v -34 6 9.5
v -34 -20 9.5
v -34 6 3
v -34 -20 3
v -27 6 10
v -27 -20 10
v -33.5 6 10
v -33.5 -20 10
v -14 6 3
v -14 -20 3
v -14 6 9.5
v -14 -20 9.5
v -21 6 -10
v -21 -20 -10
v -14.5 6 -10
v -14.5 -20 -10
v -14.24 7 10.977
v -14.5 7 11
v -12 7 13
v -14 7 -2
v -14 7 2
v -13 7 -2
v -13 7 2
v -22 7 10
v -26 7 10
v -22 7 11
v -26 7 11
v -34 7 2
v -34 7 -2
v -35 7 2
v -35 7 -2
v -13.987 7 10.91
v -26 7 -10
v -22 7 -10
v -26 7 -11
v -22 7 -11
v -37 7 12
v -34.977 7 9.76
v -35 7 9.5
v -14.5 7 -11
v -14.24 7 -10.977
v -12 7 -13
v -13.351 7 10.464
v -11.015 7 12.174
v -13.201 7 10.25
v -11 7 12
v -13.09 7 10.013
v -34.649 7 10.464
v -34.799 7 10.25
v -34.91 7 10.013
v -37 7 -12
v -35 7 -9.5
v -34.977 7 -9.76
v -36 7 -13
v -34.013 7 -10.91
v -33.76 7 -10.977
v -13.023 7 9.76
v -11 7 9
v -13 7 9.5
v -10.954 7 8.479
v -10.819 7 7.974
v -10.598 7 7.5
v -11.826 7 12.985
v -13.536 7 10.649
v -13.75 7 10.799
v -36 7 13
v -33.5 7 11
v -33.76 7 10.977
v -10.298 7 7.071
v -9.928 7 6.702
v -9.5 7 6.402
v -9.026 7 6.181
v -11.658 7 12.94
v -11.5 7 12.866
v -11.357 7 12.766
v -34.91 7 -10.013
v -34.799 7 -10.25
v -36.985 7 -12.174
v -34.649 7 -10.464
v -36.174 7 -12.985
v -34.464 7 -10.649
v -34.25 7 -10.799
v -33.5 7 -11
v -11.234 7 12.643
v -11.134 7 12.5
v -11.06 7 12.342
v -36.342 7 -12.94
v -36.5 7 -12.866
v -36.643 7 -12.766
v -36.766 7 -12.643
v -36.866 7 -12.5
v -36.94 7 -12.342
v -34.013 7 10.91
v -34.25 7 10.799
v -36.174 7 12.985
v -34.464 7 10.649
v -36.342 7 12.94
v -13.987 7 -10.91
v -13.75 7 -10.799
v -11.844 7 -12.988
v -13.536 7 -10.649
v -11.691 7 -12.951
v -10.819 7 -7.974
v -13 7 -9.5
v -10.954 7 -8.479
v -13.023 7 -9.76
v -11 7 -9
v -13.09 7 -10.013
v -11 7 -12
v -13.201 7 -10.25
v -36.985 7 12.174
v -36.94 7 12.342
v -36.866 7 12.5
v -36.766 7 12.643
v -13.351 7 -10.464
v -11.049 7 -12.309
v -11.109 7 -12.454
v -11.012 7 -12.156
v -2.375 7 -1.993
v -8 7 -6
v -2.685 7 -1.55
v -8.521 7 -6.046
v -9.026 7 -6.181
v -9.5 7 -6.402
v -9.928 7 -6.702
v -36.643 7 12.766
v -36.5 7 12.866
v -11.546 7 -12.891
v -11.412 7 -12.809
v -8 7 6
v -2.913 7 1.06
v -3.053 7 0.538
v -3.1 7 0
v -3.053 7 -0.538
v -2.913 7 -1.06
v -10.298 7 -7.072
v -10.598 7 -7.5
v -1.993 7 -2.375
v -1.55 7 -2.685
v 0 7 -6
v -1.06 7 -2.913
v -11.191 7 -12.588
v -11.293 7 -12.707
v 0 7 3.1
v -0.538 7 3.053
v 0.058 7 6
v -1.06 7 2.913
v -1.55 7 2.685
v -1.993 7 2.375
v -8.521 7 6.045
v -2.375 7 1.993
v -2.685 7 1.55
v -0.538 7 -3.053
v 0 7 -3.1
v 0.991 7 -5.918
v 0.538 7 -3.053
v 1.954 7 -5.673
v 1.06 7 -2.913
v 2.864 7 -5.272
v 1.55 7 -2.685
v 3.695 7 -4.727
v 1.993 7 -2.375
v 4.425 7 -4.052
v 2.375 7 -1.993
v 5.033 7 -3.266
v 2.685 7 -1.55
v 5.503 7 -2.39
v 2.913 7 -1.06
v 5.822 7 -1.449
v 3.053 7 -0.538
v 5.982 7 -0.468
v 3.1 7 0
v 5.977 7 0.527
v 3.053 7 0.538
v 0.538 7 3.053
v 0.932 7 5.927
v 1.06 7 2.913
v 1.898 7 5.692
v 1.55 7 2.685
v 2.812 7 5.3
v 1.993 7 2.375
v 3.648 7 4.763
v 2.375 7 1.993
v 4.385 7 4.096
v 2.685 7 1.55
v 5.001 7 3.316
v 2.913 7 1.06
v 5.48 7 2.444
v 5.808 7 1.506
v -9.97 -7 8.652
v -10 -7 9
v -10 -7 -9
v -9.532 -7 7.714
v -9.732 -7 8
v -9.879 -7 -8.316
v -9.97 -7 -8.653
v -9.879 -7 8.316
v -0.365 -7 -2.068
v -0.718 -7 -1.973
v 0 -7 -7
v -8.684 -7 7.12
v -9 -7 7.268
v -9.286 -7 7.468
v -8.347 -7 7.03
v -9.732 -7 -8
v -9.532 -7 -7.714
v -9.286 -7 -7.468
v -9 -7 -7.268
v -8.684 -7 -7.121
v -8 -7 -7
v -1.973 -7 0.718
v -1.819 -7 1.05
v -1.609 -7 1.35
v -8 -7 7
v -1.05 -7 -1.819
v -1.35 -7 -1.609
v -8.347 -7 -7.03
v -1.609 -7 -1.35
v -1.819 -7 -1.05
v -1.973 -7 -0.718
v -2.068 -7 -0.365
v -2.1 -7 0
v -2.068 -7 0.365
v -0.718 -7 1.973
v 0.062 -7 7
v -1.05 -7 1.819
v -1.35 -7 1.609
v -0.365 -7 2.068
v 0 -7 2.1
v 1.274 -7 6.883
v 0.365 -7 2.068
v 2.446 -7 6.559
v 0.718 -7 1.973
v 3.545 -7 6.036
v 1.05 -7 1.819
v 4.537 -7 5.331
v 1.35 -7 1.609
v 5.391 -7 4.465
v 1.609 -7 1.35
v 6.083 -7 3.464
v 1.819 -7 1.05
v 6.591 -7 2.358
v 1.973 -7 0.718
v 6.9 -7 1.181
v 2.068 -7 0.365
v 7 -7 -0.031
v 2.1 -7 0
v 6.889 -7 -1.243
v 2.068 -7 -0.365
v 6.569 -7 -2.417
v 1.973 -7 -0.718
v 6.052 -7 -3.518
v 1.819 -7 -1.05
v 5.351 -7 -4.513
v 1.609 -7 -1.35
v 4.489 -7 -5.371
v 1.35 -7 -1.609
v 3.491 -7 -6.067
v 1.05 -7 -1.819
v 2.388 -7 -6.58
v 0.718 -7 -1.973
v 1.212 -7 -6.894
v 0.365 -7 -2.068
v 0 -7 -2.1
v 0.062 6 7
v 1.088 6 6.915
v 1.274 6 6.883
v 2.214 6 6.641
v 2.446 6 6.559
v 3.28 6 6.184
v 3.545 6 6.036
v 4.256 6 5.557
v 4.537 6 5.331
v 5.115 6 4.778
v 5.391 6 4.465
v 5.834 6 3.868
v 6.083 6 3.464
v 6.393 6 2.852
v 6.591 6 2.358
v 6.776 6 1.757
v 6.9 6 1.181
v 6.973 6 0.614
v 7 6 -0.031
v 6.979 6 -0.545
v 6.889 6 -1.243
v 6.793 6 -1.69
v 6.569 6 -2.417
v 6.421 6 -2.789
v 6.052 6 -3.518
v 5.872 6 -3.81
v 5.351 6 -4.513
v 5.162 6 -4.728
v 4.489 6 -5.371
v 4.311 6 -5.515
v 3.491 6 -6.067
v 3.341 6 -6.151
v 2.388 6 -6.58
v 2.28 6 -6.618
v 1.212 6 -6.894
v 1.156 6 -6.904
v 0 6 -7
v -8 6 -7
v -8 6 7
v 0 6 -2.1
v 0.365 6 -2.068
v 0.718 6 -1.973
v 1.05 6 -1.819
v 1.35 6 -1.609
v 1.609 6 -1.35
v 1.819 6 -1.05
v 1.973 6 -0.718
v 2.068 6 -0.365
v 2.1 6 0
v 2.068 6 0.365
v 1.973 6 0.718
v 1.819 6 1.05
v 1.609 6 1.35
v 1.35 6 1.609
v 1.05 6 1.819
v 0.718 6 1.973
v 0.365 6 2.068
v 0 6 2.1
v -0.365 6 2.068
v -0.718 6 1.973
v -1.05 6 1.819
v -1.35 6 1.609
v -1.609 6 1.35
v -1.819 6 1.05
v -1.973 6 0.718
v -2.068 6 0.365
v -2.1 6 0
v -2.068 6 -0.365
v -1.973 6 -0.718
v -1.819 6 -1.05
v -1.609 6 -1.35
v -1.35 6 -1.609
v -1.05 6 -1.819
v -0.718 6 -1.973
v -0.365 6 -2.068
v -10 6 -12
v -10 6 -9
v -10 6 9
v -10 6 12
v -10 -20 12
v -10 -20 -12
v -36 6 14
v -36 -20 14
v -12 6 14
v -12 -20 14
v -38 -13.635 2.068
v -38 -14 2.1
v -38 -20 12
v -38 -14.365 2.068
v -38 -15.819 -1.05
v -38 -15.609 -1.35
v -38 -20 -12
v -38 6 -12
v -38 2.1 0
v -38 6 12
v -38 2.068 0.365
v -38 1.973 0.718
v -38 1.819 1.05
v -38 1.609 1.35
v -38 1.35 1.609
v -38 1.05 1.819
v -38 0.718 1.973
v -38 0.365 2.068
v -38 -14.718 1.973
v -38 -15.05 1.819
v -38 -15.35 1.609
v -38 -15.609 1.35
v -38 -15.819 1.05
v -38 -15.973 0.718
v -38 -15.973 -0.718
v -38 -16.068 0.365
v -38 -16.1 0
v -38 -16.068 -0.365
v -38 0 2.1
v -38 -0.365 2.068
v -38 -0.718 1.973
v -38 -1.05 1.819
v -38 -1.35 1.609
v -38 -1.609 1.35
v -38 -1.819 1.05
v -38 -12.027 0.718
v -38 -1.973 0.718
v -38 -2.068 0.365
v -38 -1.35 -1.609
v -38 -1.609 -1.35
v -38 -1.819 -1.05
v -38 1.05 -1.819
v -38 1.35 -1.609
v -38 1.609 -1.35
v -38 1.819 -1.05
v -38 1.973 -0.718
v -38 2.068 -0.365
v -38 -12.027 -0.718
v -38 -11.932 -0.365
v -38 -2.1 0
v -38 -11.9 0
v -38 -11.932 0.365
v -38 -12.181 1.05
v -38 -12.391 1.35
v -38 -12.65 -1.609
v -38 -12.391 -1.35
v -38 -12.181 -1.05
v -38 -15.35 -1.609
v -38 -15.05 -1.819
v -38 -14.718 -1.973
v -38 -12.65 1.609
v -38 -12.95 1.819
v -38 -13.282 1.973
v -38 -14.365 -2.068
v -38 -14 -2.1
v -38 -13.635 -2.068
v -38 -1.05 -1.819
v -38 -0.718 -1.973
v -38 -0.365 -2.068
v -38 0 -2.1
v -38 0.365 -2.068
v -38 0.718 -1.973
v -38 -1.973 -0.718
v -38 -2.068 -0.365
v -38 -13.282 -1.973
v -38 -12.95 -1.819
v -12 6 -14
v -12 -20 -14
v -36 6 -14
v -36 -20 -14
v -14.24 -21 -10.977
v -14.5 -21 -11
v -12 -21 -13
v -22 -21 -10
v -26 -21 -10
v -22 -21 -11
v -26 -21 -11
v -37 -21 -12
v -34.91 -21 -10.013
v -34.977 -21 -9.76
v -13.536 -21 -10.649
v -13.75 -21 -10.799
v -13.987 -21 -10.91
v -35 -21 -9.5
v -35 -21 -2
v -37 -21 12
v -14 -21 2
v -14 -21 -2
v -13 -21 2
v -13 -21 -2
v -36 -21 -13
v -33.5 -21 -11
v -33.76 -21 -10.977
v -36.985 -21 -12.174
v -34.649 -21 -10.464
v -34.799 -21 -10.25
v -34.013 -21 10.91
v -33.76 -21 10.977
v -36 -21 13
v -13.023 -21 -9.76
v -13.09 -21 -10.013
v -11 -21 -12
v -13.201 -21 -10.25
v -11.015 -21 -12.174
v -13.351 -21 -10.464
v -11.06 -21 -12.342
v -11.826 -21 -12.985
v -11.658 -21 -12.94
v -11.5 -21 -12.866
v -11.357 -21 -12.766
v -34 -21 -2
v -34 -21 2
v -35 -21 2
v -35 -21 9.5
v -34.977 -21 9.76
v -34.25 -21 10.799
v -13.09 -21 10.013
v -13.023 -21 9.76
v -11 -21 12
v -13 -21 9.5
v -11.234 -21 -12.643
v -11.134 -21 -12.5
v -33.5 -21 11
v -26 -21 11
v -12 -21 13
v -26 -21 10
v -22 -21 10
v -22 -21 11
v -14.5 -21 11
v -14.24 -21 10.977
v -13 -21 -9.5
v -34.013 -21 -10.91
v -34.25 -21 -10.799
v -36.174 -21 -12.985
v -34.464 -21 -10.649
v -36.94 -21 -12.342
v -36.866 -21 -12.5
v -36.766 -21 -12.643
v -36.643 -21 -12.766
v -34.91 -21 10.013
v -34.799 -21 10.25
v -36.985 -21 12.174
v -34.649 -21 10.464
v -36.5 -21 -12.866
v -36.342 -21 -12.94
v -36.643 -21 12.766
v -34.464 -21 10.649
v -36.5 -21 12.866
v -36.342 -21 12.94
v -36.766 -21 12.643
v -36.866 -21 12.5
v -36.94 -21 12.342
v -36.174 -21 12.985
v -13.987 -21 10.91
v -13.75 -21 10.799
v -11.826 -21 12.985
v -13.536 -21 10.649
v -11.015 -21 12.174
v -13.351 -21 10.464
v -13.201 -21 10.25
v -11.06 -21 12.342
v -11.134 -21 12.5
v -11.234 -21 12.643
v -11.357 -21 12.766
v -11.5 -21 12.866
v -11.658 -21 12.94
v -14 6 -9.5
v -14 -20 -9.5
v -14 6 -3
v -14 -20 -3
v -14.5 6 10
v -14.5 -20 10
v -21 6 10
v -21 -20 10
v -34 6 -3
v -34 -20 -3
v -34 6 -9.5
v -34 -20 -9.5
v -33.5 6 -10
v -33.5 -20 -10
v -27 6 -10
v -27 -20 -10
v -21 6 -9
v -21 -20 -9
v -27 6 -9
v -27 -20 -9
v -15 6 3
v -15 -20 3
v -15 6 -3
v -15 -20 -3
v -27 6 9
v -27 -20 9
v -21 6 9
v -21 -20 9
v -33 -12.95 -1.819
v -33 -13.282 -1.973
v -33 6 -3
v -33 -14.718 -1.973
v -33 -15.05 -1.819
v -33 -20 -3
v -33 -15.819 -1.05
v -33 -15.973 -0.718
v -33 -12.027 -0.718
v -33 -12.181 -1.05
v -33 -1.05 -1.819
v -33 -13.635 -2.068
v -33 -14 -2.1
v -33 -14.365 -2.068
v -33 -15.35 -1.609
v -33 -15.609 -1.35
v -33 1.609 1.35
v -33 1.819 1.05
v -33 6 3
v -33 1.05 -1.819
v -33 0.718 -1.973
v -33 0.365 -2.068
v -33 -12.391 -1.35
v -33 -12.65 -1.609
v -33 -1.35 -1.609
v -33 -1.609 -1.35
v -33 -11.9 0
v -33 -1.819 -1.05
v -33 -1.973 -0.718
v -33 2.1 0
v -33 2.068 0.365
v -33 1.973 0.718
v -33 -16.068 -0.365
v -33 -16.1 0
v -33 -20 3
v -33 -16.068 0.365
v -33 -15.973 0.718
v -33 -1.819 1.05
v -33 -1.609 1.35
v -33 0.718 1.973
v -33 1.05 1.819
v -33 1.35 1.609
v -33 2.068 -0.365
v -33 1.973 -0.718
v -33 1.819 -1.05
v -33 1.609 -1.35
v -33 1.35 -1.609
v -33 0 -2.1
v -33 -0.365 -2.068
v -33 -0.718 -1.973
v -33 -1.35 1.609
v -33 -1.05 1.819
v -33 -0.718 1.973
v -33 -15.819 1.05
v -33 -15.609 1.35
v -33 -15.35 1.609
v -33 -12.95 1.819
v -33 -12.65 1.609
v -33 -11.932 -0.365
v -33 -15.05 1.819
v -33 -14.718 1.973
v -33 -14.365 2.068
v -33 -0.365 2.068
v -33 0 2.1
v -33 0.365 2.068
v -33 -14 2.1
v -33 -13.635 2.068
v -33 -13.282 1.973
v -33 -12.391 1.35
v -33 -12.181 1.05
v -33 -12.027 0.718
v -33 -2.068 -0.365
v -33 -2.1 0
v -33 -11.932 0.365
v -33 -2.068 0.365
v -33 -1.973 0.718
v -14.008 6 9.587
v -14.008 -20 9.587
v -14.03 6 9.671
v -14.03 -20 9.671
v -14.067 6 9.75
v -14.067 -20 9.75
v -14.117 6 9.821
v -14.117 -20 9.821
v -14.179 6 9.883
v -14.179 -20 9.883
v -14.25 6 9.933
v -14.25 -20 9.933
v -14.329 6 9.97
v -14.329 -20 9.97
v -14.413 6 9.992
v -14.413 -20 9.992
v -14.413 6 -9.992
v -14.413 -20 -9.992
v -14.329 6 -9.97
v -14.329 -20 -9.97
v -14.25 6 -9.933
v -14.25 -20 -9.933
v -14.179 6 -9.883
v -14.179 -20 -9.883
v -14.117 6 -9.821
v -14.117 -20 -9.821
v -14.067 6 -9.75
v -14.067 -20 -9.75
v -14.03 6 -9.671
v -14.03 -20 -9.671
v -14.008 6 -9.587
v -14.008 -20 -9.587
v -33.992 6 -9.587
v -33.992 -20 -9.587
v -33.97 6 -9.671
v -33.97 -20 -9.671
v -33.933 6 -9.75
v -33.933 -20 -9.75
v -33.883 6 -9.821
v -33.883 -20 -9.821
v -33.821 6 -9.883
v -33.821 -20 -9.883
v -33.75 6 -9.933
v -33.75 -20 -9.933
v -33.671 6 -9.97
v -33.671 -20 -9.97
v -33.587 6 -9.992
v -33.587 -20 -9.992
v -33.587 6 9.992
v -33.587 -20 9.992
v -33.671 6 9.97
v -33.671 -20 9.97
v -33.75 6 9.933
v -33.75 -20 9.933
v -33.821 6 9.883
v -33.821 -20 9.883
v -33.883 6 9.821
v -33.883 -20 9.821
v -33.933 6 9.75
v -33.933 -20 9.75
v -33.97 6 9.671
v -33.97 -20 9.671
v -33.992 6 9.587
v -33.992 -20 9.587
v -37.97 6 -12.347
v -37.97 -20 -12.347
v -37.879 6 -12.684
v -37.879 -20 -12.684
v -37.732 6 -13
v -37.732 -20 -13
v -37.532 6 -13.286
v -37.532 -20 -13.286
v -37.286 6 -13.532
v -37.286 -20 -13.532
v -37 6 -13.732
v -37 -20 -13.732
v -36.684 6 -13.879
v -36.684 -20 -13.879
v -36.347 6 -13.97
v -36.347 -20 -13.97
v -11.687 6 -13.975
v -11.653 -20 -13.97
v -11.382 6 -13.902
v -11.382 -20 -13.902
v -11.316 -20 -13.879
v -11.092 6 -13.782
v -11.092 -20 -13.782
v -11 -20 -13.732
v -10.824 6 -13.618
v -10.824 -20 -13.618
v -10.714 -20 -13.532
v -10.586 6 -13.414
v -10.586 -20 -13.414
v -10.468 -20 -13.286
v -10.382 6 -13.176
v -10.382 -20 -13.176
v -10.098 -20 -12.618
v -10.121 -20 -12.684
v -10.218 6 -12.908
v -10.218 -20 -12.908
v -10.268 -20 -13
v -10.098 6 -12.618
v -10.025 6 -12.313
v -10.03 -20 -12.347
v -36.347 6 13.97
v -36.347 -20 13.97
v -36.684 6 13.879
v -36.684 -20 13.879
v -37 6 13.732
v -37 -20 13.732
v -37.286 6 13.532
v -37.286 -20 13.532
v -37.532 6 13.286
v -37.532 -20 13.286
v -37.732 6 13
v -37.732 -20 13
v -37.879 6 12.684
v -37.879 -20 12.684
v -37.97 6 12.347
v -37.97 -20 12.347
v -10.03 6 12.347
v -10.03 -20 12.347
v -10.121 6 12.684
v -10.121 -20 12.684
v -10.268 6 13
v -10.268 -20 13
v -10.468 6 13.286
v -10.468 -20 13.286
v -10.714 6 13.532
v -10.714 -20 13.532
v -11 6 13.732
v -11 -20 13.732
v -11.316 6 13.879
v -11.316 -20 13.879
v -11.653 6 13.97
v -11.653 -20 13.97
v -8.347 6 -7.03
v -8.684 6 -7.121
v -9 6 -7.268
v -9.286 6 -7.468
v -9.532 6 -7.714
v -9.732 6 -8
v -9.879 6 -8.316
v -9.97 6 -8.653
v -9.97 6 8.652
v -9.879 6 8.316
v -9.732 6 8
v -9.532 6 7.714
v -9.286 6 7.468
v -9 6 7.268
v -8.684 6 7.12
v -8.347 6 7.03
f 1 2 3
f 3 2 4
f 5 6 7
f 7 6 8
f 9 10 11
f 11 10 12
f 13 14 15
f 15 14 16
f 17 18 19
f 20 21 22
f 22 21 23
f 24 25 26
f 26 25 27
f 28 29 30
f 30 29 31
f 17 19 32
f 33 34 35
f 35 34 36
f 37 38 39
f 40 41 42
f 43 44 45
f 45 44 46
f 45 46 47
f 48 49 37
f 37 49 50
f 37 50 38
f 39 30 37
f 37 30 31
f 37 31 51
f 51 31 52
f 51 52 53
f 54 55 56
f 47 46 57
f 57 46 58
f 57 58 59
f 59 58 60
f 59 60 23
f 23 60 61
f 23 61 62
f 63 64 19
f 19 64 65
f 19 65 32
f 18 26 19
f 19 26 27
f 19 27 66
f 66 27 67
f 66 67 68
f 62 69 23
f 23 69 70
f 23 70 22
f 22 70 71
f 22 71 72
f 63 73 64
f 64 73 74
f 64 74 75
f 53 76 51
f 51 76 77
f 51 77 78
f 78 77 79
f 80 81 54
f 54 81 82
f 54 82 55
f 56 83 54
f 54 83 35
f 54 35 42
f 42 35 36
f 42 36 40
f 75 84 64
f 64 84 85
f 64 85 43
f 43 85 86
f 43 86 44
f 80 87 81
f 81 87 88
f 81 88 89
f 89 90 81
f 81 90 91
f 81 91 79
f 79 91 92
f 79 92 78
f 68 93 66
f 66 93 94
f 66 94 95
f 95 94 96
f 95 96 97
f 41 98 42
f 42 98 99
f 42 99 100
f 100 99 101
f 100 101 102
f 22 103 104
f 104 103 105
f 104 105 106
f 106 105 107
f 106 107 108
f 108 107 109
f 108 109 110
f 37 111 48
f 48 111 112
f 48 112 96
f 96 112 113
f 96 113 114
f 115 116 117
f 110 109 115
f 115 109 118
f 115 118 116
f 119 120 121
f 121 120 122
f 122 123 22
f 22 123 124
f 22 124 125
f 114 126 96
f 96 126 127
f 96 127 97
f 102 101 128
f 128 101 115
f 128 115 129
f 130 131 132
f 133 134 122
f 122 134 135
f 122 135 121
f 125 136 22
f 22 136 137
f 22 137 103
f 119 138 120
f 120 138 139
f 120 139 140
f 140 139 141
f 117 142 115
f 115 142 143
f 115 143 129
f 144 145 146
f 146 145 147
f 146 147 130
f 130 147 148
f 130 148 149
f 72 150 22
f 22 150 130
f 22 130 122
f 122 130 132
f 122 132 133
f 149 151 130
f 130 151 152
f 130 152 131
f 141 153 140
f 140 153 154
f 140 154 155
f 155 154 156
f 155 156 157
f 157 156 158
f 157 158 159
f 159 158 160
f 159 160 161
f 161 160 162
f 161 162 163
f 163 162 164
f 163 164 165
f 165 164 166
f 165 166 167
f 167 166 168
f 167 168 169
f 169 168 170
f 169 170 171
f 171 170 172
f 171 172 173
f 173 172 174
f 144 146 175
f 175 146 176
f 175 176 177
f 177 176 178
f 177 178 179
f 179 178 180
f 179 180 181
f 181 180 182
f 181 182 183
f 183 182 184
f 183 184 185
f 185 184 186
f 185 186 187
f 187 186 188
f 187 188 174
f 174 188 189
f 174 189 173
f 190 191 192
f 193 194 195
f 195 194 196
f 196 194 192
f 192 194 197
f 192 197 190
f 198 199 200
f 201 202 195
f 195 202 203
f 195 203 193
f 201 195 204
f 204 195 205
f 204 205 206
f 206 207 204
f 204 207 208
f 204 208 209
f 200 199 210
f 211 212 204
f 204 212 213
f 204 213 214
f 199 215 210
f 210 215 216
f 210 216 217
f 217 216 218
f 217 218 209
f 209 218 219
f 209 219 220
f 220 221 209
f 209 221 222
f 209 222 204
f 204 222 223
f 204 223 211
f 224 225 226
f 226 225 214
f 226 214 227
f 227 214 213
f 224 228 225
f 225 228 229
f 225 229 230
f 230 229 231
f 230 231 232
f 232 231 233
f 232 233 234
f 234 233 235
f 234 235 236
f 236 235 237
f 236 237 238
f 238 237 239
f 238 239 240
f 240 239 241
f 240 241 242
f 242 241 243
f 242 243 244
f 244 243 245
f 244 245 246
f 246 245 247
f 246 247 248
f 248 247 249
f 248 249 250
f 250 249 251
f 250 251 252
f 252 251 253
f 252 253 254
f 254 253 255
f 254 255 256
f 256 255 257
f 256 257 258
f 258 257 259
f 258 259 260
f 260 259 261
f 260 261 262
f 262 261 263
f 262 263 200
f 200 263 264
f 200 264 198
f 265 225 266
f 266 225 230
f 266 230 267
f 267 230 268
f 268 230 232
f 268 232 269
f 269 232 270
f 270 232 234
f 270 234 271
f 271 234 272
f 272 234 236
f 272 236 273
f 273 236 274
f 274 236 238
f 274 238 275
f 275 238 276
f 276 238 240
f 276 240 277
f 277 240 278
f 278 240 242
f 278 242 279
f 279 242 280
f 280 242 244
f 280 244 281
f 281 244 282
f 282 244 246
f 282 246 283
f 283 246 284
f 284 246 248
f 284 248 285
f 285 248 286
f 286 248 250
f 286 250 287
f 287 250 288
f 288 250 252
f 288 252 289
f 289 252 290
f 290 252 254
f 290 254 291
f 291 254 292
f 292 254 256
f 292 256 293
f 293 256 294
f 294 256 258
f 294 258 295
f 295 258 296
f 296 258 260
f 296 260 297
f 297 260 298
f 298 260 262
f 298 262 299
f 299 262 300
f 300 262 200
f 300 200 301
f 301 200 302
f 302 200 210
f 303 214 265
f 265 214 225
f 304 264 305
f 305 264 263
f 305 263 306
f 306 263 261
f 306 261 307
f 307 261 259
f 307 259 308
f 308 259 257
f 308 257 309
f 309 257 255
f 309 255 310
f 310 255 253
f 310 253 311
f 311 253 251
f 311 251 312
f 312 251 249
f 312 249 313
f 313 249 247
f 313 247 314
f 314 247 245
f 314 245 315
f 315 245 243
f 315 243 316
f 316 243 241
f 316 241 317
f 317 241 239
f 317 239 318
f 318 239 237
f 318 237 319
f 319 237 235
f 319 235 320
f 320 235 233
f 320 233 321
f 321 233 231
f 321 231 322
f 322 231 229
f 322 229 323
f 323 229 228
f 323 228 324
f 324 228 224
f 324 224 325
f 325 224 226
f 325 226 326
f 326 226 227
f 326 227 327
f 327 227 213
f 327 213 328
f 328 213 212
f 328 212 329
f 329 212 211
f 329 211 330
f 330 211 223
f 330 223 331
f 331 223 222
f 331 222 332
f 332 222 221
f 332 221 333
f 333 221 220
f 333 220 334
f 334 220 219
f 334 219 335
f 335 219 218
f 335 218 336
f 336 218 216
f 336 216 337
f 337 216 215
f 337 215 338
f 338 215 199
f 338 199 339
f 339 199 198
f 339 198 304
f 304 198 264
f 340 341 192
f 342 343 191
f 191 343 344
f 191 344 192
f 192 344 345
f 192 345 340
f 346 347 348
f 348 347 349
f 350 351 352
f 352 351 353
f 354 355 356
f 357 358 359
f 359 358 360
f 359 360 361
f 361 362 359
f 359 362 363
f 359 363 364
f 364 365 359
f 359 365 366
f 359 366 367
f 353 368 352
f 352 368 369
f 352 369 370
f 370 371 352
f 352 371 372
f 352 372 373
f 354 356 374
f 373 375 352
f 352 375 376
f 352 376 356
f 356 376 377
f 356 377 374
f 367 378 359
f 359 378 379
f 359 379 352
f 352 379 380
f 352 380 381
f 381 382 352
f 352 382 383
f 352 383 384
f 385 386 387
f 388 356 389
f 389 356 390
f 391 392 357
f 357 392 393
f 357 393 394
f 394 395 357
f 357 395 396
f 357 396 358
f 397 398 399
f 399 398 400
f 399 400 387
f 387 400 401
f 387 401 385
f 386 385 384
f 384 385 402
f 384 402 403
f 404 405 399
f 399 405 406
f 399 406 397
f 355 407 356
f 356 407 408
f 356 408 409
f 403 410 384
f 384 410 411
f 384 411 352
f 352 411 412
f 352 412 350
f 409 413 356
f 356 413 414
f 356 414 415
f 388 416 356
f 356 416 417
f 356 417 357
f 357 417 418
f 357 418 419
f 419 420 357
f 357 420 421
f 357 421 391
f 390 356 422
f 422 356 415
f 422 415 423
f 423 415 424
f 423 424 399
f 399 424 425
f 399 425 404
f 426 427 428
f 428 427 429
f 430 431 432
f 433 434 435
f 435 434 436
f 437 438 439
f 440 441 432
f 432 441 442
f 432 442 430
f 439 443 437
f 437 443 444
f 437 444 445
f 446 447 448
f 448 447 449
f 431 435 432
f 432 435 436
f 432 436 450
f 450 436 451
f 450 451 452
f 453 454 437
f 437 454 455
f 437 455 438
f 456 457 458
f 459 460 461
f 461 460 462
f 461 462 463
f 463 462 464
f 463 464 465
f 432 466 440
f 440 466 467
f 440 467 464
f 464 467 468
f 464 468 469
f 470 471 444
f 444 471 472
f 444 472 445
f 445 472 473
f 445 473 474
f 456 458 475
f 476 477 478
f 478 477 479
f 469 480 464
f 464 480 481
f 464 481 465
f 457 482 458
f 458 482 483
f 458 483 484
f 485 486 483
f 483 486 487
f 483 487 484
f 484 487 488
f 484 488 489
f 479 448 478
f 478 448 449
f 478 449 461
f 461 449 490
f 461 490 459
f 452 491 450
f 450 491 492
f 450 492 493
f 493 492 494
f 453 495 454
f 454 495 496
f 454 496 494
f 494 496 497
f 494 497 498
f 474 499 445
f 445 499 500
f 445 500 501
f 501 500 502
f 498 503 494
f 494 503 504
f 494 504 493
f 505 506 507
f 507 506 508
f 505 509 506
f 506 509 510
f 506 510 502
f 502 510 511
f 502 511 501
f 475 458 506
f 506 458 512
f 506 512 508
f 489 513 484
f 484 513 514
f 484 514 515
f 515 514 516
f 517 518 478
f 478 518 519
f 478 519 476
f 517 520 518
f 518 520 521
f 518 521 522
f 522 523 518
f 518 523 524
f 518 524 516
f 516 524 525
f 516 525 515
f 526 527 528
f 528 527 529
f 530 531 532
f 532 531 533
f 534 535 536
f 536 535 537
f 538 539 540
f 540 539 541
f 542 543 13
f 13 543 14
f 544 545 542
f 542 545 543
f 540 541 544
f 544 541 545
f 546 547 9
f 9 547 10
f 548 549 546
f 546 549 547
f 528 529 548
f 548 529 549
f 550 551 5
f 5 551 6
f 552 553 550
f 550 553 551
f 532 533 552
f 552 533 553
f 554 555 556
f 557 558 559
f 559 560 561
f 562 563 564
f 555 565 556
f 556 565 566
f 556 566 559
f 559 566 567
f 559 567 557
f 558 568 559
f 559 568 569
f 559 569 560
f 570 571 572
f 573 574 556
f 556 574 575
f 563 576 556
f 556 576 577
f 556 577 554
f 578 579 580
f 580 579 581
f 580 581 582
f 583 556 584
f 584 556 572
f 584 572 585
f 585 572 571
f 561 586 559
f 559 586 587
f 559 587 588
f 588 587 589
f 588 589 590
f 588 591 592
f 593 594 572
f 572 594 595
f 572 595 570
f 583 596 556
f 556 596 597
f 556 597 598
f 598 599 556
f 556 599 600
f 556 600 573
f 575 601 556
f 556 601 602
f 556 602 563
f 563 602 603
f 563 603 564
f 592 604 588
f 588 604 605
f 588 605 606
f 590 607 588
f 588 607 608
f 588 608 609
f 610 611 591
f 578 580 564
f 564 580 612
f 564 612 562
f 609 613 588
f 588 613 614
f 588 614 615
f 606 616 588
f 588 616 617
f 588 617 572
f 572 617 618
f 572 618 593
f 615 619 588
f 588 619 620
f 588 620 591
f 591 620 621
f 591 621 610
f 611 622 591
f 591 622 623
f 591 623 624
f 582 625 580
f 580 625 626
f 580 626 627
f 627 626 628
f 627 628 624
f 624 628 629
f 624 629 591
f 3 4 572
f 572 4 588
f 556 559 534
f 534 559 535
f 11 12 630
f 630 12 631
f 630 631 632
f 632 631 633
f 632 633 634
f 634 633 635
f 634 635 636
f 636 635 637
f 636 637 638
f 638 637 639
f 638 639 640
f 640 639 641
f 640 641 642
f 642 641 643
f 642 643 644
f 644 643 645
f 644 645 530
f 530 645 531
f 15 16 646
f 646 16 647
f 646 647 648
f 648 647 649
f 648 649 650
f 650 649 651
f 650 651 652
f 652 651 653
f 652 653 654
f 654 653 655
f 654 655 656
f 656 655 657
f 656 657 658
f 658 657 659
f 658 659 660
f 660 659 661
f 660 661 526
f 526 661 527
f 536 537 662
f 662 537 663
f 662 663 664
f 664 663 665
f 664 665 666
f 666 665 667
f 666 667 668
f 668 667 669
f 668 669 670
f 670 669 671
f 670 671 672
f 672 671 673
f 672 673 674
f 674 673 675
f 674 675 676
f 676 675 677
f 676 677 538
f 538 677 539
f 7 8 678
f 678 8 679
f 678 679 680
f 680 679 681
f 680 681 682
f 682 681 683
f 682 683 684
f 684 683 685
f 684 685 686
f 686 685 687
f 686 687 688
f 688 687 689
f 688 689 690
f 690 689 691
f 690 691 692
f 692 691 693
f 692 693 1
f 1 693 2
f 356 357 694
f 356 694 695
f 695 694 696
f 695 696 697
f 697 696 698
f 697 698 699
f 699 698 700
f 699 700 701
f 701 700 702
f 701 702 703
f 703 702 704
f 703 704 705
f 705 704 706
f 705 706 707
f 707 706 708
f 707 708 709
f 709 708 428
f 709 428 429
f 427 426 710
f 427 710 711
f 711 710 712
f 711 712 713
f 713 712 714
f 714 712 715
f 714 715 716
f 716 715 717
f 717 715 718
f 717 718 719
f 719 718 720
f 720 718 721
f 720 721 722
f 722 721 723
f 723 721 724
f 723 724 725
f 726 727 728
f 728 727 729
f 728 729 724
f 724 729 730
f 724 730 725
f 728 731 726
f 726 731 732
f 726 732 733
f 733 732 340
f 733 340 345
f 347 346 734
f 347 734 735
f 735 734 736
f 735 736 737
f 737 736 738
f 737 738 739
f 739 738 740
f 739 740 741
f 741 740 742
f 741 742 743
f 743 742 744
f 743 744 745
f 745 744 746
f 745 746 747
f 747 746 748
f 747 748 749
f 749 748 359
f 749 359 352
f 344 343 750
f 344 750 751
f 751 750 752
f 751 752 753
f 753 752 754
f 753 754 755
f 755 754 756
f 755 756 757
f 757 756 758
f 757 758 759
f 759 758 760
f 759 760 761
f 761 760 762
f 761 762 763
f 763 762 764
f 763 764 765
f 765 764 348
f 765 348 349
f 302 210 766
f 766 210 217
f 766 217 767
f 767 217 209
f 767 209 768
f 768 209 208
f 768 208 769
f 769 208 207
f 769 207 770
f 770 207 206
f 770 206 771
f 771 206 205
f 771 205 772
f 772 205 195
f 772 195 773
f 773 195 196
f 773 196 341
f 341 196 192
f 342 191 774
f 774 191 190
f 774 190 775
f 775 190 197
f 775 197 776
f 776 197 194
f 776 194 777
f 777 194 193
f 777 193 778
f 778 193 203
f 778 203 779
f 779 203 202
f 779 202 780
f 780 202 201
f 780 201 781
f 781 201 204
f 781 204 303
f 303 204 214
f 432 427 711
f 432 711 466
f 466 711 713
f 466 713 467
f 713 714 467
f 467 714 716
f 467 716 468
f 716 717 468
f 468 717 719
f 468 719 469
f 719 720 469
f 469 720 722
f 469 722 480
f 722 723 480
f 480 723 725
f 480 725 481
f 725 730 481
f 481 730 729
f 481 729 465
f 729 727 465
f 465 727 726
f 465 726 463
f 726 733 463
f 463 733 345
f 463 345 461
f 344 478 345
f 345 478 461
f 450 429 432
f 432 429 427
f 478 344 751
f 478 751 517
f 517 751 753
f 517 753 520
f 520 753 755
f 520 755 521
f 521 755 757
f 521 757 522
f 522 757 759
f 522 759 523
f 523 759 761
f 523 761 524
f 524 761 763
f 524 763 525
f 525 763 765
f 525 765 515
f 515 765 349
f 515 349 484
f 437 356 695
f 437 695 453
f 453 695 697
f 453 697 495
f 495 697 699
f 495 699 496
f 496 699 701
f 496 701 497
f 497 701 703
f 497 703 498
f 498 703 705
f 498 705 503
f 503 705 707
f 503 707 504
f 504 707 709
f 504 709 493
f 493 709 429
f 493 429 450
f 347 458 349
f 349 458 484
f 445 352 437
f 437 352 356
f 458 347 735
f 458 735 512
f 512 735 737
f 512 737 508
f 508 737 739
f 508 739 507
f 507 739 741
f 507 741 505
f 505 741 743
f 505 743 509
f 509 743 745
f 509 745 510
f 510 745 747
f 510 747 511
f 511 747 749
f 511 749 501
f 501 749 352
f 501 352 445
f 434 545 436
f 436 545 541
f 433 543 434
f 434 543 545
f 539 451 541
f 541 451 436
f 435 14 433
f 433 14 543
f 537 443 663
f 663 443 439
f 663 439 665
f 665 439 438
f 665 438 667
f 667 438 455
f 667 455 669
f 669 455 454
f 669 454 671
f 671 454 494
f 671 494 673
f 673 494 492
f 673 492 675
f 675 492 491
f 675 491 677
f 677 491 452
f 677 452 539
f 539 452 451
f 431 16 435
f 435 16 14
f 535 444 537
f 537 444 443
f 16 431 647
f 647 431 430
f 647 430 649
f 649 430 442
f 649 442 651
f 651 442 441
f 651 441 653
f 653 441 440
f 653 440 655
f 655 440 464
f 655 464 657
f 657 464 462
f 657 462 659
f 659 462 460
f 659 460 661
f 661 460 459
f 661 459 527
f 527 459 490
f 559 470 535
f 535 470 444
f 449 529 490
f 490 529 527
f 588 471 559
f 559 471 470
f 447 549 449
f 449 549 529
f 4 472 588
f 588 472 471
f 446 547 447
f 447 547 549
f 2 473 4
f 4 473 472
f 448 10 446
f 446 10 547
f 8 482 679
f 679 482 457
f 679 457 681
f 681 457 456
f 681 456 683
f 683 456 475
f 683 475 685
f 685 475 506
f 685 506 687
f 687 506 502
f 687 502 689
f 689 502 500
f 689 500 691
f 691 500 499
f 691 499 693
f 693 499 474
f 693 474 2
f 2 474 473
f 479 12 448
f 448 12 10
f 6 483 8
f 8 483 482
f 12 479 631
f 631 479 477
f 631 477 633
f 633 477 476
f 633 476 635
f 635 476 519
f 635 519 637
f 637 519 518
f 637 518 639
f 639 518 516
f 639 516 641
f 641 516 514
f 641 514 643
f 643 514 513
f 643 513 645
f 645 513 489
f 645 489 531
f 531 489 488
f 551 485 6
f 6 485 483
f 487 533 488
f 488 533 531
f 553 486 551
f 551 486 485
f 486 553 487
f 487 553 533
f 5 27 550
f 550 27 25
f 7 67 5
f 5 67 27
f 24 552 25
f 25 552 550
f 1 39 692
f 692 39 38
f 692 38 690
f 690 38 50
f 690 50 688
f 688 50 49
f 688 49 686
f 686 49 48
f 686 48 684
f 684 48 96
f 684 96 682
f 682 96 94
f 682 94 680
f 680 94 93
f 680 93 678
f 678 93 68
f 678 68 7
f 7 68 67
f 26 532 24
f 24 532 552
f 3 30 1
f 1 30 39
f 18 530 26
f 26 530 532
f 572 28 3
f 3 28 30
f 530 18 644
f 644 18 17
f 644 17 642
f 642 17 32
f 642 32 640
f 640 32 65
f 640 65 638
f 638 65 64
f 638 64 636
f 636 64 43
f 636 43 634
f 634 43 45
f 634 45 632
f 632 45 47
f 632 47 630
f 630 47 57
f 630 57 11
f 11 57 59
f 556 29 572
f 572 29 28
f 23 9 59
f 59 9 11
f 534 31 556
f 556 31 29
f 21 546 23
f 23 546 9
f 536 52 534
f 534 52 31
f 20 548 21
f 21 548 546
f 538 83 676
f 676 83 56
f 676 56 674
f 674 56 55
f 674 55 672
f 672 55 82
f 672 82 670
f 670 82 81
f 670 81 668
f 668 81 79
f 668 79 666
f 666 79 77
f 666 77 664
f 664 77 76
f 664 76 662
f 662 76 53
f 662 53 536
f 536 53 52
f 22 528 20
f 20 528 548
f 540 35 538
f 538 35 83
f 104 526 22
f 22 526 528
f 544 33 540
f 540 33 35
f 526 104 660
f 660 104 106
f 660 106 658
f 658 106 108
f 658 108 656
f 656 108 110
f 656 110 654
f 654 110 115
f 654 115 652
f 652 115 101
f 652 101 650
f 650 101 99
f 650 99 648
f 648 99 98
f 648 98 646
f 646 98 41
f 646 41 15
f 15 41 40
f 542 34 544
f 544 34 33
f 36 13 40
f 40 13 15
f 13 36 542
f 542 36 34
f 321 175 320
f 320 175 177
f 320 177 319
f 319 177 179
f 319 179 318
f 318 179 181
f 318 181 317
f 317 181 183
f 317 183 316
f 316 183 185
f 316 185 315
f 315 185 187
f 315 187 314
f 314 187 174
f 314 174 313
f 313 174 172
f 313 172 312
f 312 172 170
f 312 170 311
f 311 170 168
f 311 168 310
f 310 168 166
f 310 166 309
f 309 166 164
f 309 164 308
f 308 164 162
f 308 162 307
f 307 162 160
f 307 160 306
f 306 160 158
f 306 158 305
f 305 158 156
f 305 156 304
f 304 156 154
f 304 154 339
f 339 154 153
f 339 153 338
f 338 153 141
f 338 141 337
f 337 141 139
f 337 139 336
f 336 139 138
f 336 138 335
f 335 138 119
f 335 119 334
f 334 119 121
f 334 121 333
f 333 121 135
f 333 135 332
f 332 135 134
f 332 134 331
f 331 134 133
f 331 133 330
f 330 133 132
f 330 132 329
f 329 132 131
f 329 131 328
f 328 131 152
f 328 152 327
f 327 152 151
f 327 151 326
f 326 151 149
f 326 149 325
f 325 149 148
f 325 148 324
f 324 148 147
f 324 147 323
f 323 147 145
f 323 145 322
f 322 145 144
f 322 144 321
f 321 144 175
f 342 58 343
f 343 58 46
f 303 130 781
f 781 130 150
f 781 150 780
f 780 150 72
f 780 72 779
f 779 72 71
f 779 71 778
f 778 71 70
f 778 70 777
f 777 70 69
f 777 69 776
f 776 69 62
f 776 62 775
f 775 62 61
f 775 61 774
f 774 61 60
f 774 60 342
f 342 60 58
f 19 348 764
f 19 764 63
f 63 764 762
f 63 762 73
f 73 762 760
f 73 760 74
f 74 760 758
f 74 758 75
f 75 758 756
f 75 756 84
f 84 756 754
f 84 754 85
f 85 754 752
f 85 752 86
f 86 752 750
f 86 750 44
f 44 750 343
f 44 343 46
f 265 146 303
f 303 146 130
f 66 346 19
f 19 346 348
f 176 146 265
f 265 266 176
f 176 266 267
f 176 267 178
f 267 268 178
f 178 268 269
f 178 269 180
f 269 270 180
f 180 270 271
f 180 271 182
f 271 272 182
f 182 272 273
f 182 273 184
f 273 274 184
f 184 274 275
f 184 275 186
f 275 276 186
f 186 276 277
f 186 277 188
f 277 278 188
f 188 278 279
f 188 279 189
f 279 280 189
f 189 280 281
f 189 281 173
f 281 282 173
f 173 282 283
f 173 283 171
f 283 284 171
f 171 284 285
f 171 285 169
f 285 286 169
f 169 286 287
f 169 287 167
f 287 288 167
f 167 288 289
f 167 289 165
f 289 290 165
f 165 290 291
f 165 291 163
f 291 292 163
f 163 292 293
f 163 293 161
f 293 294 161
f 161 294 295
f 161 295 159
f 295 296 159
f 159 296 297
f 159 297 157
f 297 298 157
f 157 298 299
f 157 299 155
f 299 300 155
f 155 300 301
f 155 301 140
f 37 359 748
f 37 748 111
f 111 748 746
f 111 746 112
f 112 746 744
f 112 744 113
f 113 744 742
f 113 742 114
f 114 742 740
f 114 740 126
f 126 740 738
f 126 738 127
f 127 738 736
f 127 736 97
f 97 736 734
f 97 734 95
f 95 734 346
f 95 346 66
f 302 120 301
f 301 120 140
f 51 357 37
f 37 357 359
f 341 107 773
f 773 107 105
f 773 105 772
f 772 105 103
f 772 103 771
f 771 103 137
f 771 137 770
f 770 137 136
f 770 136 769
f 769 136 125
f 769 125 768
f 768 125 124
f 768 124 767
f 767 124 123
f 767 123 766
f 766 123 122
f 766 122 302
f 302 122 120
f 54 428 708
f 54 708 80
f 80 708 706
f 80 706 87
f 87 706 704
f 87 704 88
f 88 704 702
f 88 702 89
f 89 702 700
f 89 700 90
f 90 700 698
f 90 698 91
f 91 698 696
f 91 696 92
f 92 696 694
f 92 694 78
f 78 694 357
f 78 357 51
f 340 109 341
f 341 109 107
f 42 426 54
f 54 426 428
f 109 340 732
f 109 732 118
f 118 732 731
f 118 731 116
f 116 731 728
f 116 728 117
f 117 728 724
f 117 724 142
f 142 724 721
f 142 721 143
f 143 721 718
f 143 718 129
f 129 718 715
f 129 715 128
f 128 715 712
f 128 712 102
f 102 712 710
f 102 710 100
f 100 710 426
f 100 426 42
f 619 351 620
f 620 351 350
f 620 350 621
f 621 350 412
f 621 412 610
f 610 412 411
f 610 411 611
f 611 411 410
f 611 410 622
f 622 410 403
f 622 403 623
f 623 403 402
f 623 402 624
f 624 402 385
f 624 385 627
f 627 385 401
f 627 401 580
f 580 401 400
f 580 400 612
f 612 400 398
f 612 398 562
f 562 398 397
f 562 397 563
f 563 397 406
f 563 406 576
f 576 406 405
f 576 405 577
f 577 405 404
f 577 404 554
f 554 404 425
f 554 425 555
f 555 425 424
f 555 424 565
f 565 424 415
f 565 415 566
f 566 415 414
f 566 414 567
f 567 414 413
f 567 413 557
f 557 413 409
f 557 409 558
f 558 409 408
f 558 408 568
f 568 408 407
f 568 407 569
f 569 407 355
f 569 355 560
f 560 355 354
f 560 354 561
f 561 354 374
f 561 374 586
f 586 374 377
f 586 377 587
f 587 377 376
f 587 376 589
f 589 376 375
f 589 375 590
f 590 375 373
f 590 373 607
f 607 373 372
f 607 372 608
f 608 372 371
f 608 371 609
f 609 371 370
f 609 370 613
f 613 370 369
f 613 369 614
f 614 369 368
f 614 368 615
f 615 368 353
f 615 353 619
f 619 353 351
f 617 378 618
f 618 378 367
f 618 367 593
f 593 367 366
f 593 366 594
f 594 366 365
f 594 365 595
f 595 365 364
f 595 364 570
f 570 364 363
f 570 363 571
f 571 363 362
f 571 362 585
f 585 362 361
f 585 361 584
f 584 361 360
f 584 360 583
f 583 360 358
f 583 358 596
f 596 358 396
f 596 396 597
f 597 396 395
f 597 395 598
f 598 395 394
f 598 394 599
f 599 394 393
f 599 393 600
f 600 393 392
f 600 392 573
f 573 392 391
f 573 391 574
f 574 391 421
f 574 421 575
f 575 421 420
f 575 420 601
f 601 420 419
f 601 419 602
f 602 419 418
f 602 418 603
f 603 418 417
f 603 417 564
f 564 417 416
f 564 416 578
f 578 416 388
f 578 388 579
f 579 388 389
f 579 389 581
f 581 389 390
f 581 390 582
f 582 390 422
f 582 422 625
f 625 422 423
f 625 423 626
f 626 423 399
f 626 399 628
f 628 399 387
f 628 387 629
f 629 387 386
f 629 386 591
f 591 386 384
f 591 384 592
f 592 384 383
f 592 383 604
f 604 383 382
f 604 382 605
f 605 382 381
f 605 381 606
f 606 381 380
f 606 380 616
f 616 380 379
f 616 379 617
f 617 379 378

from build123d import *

# Parameters (mm, degrees)
CROQUIS1_R              = 2.1
SALIENTE_EXTRUIR1_DEPTH = 7
CROQUIS2_W              = 28
CROQUIS2_H              = 28
CROQUIS2_W_2            = 20
CROQUIS2_H_2            = 20
SALIENTE_EXTRUIR2_DEPTH = 28
CROQUIS3_W              = 6
CROQUIS3_H              = 1
CROQUIS3_W_2            = 1
CROQUIS3_H_2            = 6
SALIENTE_EXTRUIR3_DEPTH = 28
REDONDEO1_R             = 0.5
REDONDEO2_R             = 2
REDONDEO3_R             = 2
CHAFL_N1_SIZE           = 1
CHAFL_N3_SIZE           = 1
CORTAR_EXTRUIR2_REACH   = 53.595
CROQUIS4_R              = 2.1


with BuildPart() as part:
    # Croquis1 → Saliente-Extruir1 (new, symmetric)
    with BuildSketch(Plane(origin=(0, 0, 0), x_dir=(1, 0, 0), z_dir=(0, 1, 0))):
        with BuildLine():
            Line((0, 7), (-10, 7))
            Line((-10, 7), (-10, -6.999720999))
            Line((-10, -6.999720999), (0.062497509, -6.999720999))
            ThreePointArc((0.062497509, -6.999720999), (6.999930249, 0.031249066), (0, 7))
        make_face()
        with Locations(Location((0, 0, 0), (0, 0, 270))):
            Circle(CROQUIS1_R, mode=Mode.SUBTRACT)
    extrude(amount=SALIENTE_EXTRUIR1_DEPTH, both=True)

    # Croquis2 → Saliente-Extruir2 (add)
    with BuildSketch(Plane(origin=(0, 7, 0), x_dir=(1, 0, 0), z_dir=(0, 1, 0))):
        with Locations((-24, 0)):
            Rectangle(CROQUIS2_W, CROQUIS2_H)
        with Locations((-24, 0)):
            Rectangle(CROQUIS2_W_2, CROQUIS2_H_2, mode=Mode.SUBTRACT)
    extrude(amount=-SALIENTE_EXTRUIR2_DEPTH)

    # Croquis3 → Saliente-Extruir3 (add, through all)
    with BuildSketch(Plane(origin=(0, 7, 0), x_dir=(1, 0, 0), z_dir=(0, 1, 0))):
        with Locations((-24, 9.5)):
            Rectangle(CROQUIS3_W, CROQUIS3_H)
        with Locations((-14.5, 0)):
            Rectangle(CROQUIS3_W_2, CROQUIS3_H_2)
        with Locations((-24, -9.5)):
            Rectangle(CROQUIS3_W, CROQUIS3_H)
        with Locations((-33.5, 0)):
            Rectangle(CROQUIS3_W_2, CROQUIS3_H_2)
    extrude(amount=-SALIENTE_EXTRUIR3_DEPTH)

    # Redondeo1
    redondeo1_edges = [part.edges().sort_by_distance(p)[0] for p in [
        (-14, -7, 10),
        (-34, -7, 10),
        (-34, -7, -10),
        (-14, -7, -10),
    ]]
    fillet(redondeo1_edges, radius=REDONDEO1_R)

    # Redondeo2
    redondeo2_edges = [part.edges().sort_by_distance(p)[0] for p in [
        (-10, -7, -14),
        (-10, -7, 14),
        (-38, -7, 14),
        (-38, -7, -14),
    ]]
    fillet(redondeo2_edges, radius=REDONDEO2_R)

    # Redondeo3
    redondeo3_edges = [part.edges().sort_by_distance(p)[0] for p in [
        (-10, 0, 6.999720999),
        (-10, 0, -7),
    ]]
    fillet(redondeo3_edges, radius=REDONDEO3_R)

    # Chaflán1
    chafl_n1_edges = [part.edges().sort_by_distance(p)[0] for p in [
        (-30.25, -21, 10),
        (-14.146446609, -21, 9.853553391),
        (-14.146446609, -21, -9.853553391),
        (-33.853553391, -21, -9.853553391),
        (-33.853553391, -21, 9.853553391),
        (-24, -21, -14),
        (-38, -21, 0),
        (-10, -21, 0),
        (-24, -21, 14),
        (-10.585786438, -21, 13.414213562),
        (-37.414213562, -21, 13.414213562),
        (-10.585786438, -21, -13.414213562),
        (-37.414213562, -21, -13.414213562),
        (-30.25, -21, -10),
        (-21, -21, -9.5),
        (-24, -21, -9),
        (-27, -21, -9.5),
        (-14, -21, -6.25),
        (-14.5, -21, 3),
        (-15, -21, 0),
        (-14.5, -21, -3),
        (-17.75, -21, 10),
        (-27, -21, 9.5),
        (-24, -21, 9),
        (-21, -21, 9.5),
        (-34, -21, 6.25),
        (-33, -21, 0),
        (-33.5, -21, 3),
        (-33.5, -21, -3),
        (-14, -21, 6.25),
        (-17.75, -21, -10),
        (-34, -21, -6.25),
    ]]
    chamfer(chafl_n1_edges, length=CHAFL_N1_SIZE)

    # Chaflán3
    chafl_n3_edges = [part.edges().sort_by_distance(p)[0] for p in [
        (-21, 7, -9.5),
        (-24, 7, -9),
        (-27, 7, -9.5),
        (-30.25, 7, -10),
        (-33.853553391, 7, -9.853553391),
        (-34, 7, -6.25),
        (-33.5, 7, -3),
        (-33, 7, 0),
        (-33.5, 7, 3),
        (-34, 7, 6.25),
        (-33.853553391, 7, 9.853553391),
        (-30.25, 7, 10),
        (-27, 7, 9.5),
        (-24, 7, 9),
        (-21, 7, 9.5),
        (-17.75, 7, 10),
        (-14.146446609, 7, 9.853553391),
        (-14, 7, 6.25),
        (-14.5, 7, 3),
        (-15, 7, 0),
        (-14.5, 7, -3),
        (-14, 7, -6.25),
        (-14.146446609, 7, -9.853553391),
        (-17.75, 7, -10),
        (0, 7, -2.1),
        (-10.585786438, 7, -13.414213562),
        (-10, 7, -10.5),
        (-9.414213562, 7, -7.585786438),
        (-4, 7, -7),
        (6.999930249, 7, -0.031249066),
        (-3.968751246, 7, 6.999720999),
        (-9.414213562, 7, 7.585507436),
        (-10, 7, 10.499860499),
        (-10.585786438, 7, 13.414213562),
        (-24, 7, 14),
        (-37.414213562, 7, 13.414213562),
        (-38, 7, 0),
        (-37.414213562, 7, -13.414213562),
        (-24, 7, -14),
    ]]
    chamfer(chafl_n3_edges, length=CHAFL_N3_SIZE)

    # Croquis4 → Cortar-Extruir2 (cut, up to next)
    with BuildSketch(Plane.ZY.offset(38), mode=Mode.PRIVATE) as cortar_extruir2_sk1:
        Circle(CROQUIS4_R)
    cortar_extruir2_tool1 = extrude(cortar_extruir2_sk1.sketch, amount=-CORTAR_EXTRUIR2_REACH, mode=Mode.PRIVATE) & part.part
    # Croquis4 → Cortar-Extruir2 (cut, up to next)
    with BuildSketch(Plane.ZY.offset(38), mode=Mode.PRIVATE) as cortar_extruir2_sk2:
        with Locations((0, -14)):
            Circle(CROQUIS4_R)
    cortar_extruir2_tool2 = extrude(cortar_extruir2_sk2.sketch, amount=-CORTAR_EXTRUIR2_REACH, mode=Mode.PRIVATE) & part.part
    add(cortar_extruir2_tool1.solids().sort_by_distance((-38, 0, 0))[0], mode=Mode.SUBTRACT)
    add(cortar_extruir2_tool2.solids().sort_by_distance((-38, -14, 0))[0], mode=Mode.SUBTRACT)


solid = part.part
